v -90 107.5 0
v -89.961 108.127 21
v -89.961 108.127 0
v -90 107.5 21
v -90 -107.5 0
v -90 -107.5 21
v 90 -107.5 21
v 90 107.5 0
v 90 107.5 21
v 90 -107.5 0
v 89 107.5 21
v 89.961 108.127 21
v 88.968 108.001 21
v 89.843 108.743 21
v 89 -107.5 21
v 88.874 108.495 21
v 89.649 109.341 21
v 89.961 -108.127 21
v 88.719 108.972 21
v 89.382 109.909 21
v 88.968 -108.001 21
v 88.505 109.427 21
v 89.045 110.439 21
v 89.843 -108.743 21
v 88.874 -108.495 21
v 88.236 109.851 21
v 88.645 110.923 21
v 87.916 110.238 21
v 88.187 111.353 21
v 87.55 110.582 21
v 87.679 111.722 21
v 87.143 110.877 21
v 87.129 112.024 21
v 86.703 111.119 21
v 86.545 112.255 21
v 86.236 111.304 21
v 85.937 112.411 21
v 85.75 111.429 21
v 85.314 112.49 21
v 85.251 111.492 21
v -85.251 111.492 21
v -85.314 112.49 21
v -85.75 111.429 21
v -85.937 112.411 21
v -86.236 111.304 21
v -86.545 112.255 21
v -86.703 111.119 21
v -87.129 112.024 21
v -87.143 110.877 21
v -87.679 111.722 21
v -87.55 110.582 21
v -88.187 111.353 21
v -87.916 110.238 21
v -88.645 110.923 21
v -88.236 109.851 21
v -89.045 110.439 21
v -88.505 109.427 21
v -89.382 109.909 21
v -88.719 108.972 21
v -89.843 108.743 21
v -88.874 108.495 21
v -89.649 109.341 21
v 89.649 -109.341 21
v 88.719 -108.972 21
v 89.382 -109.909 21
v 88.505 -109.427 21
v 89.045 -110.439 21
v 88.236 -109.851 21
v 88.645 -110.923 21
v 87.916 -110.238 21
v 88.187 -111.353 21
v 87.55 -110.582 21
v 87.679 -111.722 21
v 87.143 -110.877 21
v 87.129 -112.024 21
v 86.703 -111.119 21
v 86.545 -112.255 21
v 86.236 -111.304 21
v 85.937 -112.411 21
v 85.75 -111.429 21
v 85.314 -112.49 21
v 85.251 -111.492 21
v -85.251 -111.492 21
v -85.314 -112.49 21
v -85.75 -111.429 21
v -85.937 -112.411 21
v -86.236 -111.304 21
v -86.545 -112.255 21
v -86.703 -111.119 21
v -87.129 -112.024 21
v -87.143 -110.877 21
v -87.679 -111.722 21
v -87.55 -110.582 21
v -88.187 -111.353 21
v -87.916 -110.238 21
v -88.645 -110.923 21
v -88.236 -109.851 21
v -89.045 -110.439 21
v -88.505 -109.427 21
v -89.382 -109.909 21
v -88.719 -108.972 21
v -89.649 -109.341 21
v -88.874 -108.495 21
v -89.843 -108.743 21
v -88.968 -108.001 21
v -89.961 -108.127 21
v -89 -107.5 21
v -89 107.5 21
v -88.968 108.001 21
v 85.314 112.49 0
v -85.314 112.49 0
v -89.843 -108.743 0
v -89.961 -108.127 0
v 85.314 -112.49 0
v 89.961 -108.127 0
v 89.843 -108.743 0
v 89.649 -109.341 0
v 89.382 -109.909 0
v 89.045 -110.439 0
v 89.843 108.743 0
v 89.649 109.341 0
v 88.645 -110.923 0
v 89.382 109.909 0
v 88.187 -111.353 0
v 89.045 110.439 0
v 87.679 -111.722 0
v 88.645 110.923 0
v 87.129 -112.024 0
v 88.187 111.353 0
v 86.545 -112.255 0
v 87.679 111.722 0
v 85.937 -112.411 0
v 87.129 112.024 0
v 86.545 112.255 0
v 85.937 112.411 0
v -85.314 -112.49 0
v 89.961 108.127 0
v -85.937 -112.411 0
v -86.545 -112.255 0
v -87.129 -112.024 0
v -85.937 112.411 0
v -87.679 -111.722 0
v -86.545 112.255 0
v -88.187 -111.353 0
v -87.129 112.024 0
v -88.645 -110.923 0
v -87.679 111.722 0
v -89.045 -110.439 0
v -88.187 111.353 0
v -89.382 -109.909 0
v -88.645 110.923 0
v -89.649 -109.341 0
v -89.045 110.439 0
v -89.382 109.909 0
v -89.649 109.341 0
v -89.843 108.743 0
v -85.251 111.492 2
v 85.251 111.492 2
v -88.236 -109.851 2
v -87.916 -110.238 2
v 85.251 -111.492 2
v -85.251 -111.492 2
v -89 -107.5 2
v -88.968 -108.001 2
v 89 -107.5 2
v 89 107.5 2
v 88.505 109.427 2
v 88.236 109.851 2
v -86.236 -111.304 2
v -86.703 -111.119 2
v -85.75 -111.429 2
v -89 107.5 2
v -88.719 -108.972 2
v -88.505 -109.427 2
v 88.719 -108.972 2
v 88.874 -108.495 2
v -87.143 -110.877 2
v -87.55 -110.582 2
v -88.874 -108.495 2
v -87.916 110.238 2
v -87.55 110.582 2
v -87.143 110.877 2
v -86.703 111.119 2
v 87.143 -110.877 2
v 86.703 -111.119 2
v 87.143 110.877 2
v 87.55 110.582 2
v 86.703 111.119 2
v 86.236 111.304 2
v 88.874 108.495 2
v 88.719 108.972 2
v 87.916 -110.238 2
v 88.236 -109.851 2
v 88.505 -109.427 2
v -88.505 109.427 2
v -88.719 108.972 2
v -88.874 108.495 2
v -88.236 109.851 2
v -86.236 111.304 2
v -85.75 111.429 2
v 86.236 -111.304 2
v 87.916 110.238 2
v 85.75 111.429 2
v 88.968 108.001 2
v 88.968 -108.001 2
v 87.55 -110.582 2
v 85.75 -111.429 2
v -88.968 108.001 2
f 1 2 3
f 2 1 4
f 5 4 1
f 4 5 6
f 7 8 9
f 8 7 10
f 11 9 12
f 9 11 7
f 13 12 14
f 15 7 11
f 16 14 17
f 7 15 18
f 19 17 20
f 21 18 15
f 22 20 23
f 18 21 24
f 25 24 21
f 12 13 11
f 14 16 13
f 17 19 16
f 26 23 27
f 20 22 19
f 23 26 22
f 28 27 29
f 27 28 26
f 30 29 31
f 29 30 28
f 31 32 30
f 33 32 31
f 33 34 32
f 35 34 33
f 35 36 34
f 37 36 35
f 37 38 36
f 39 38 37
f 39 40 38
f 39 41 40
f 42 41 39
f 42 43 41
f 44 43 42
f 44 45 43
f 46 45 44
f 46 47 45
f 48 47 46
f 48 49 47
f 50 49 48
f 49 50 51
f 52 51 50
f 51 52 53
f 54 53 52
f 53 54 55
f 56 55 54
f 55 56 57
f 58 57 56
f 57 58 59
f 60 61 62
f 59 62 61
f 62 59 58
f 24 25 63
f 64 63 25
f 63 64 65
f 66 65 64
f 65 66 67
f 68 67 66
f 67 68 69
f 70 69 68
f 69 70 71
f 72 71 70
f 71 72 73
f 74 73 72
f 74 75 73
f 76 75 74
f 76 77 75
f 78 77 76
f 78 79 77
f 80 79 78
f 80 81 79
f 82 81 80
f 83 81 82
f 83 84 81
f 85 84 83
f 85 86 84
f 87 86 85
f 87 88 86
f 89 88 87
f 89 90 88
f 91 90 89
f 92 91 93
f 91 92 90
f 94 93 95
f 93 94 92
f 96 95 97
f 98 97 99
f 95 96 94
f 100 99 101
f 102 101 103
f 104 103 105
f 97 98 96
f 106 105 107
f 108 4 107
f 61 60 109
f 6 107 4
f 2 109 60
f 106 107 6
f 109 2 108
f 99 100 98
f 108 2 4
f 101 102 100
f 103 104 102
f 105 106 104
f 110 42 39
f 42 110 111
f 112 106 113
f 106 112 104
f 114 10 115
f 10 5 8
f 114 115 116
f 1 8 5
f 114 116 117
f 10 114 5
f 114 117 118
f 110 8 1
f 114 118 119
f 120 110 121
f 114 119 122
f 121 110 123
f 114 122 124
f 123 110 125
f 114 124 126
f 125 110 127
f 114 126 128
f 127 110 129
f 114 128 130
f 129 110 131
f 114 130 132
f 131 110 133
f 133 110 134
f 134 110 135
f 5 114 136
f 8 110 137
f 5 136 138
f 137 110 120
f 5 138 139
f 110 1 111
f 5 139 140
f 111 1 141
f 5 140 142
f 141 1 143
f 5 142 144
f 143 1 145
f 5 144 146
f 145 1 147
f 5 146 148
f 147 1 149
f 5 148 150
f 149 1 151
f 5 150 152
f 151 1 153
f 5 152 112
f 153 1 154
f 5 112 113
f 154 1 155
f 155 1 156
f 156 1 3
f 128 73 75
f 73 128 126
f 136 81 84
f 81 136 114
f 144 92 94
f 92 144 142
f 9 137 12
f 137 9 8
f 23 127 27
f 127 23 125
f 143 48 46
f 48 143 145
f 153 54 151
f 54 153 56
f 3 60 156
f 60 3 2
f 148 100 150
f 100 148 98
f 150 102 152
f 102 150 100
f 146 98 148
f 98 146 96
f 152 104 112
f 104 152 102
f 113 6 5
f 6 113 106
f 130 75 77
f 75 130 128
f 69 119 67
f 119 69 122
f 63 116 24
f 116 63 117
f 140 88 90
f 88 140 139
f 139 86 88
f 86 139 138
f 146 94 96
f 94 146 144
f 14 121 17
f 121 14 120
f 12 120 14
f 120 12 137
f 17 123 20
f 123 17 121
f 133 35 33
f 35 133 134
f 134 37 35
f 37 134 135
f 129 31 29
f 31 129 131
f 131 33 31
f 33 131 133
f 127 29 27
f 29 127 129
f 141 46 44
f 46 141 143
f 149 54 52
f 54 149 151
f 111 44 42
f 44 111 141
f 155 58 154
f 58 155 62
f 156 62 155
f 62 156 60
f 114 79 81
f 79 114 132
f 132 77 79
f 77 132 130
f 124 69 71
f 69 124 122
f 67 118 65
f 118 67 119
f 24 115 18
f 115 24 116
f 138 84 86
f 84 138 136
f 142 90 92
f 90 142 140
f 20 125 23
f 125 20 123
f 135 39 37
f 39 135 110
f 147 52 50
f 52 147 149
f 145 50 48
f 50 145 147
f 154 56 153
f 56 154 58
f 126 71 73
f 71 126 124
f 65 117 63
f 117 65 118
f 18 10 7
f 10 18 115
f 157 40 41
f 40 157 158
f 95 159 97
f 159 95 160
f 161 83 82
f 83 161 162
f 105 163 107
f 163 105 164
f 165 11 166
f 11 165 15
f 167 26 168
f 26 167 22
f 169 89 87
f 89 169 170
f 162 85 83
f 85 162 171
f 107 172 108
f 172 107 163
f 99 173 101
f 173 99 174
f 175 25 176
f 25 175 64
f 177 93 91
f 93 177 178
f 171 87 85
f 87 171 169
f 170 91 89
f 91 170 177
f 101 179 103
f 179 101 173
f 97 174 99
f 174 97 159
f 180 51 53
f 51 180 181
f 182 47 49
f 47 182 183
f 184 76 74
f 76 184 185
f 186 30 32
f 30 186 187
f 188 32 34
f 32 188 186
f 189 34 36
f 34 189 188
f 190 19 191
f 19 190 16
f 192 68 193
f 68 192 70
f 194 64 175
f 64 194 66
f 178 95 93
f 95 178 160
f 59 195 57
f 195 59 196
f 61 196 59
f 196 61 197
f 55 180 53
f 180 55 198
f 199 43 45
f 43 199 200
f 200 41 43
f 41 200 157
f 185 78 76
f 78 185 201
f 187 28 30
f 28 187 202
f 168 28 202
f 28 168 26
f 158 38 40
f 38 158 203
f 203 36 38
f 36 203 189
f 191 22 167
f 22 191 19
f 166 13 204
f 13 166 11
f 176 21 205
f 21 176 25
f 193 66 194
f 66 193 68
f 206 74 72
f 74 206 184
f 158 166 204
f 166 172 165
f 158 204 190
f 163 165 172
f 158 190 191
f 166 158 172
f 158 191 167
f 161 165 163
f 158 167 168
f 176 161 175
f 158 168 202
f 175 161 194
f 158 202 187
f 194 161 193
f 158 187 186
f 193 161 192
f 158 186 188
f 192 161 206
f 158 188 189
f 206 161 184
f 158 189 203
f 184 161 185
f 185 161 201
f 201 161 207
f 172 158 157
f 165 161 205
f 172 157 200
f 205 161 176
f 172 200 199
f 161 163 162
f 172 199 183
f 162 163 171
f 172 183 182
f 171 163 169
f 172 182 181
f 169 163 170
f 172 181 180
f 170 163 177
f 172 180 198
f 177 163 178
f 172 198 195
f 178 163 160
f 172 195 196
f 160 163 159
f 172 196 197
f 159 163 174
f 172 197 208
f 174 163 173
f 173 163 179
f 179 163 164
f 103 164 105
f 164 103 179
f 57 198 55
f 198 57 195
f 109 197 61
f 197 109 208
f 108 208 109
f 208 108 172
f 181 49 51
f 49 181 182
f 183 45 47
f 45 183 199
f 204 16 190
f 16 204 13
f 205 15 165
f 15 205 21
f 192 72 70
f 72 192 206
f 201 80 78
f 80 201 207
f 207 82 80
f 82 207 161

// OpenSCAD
$fn = 50;


difference() {
	union() {
		hull() {
			translate(v = [-85.0000000000, 107.5000000000, 0]) {
				cylinder(h = 21, r = 5);
			}
			translate(v = [85.0000000000, 107.5000000000, 0]) {
				cylinder(h = 21, r = 5);
			}
			translate(v = [-85.0000000000, -107.5000000000, 0]) {
				cylinder(h = 21, r = 5);
			}
			translate(v = [85.0000000000, -107.5000000000, 0]) {
				cylinder(h = 21, r = 5);
			}
		}
	}
	union() {
		translate(v = [0, 0, 2]) {
			hull() {
				translate(v = [-85.0000000000, 107.5000000000, 0]) {
					cylinder(h = 19, r = 4);
				}
				translate(v = [85.0000000000, 107.5000000000, 0]) {
					cylinder(h = 19, r = 4);
				}
				translate(v = [-85.0000000000, -107.5000000000, 0]) {
					cylinder(h = 19, r = 4);
				}
				translate(v = [85.0000000000, -107.5000000000, 0]) {
					cylinder(h = 19, r = 4);
				}
			}
		}
	}
}
